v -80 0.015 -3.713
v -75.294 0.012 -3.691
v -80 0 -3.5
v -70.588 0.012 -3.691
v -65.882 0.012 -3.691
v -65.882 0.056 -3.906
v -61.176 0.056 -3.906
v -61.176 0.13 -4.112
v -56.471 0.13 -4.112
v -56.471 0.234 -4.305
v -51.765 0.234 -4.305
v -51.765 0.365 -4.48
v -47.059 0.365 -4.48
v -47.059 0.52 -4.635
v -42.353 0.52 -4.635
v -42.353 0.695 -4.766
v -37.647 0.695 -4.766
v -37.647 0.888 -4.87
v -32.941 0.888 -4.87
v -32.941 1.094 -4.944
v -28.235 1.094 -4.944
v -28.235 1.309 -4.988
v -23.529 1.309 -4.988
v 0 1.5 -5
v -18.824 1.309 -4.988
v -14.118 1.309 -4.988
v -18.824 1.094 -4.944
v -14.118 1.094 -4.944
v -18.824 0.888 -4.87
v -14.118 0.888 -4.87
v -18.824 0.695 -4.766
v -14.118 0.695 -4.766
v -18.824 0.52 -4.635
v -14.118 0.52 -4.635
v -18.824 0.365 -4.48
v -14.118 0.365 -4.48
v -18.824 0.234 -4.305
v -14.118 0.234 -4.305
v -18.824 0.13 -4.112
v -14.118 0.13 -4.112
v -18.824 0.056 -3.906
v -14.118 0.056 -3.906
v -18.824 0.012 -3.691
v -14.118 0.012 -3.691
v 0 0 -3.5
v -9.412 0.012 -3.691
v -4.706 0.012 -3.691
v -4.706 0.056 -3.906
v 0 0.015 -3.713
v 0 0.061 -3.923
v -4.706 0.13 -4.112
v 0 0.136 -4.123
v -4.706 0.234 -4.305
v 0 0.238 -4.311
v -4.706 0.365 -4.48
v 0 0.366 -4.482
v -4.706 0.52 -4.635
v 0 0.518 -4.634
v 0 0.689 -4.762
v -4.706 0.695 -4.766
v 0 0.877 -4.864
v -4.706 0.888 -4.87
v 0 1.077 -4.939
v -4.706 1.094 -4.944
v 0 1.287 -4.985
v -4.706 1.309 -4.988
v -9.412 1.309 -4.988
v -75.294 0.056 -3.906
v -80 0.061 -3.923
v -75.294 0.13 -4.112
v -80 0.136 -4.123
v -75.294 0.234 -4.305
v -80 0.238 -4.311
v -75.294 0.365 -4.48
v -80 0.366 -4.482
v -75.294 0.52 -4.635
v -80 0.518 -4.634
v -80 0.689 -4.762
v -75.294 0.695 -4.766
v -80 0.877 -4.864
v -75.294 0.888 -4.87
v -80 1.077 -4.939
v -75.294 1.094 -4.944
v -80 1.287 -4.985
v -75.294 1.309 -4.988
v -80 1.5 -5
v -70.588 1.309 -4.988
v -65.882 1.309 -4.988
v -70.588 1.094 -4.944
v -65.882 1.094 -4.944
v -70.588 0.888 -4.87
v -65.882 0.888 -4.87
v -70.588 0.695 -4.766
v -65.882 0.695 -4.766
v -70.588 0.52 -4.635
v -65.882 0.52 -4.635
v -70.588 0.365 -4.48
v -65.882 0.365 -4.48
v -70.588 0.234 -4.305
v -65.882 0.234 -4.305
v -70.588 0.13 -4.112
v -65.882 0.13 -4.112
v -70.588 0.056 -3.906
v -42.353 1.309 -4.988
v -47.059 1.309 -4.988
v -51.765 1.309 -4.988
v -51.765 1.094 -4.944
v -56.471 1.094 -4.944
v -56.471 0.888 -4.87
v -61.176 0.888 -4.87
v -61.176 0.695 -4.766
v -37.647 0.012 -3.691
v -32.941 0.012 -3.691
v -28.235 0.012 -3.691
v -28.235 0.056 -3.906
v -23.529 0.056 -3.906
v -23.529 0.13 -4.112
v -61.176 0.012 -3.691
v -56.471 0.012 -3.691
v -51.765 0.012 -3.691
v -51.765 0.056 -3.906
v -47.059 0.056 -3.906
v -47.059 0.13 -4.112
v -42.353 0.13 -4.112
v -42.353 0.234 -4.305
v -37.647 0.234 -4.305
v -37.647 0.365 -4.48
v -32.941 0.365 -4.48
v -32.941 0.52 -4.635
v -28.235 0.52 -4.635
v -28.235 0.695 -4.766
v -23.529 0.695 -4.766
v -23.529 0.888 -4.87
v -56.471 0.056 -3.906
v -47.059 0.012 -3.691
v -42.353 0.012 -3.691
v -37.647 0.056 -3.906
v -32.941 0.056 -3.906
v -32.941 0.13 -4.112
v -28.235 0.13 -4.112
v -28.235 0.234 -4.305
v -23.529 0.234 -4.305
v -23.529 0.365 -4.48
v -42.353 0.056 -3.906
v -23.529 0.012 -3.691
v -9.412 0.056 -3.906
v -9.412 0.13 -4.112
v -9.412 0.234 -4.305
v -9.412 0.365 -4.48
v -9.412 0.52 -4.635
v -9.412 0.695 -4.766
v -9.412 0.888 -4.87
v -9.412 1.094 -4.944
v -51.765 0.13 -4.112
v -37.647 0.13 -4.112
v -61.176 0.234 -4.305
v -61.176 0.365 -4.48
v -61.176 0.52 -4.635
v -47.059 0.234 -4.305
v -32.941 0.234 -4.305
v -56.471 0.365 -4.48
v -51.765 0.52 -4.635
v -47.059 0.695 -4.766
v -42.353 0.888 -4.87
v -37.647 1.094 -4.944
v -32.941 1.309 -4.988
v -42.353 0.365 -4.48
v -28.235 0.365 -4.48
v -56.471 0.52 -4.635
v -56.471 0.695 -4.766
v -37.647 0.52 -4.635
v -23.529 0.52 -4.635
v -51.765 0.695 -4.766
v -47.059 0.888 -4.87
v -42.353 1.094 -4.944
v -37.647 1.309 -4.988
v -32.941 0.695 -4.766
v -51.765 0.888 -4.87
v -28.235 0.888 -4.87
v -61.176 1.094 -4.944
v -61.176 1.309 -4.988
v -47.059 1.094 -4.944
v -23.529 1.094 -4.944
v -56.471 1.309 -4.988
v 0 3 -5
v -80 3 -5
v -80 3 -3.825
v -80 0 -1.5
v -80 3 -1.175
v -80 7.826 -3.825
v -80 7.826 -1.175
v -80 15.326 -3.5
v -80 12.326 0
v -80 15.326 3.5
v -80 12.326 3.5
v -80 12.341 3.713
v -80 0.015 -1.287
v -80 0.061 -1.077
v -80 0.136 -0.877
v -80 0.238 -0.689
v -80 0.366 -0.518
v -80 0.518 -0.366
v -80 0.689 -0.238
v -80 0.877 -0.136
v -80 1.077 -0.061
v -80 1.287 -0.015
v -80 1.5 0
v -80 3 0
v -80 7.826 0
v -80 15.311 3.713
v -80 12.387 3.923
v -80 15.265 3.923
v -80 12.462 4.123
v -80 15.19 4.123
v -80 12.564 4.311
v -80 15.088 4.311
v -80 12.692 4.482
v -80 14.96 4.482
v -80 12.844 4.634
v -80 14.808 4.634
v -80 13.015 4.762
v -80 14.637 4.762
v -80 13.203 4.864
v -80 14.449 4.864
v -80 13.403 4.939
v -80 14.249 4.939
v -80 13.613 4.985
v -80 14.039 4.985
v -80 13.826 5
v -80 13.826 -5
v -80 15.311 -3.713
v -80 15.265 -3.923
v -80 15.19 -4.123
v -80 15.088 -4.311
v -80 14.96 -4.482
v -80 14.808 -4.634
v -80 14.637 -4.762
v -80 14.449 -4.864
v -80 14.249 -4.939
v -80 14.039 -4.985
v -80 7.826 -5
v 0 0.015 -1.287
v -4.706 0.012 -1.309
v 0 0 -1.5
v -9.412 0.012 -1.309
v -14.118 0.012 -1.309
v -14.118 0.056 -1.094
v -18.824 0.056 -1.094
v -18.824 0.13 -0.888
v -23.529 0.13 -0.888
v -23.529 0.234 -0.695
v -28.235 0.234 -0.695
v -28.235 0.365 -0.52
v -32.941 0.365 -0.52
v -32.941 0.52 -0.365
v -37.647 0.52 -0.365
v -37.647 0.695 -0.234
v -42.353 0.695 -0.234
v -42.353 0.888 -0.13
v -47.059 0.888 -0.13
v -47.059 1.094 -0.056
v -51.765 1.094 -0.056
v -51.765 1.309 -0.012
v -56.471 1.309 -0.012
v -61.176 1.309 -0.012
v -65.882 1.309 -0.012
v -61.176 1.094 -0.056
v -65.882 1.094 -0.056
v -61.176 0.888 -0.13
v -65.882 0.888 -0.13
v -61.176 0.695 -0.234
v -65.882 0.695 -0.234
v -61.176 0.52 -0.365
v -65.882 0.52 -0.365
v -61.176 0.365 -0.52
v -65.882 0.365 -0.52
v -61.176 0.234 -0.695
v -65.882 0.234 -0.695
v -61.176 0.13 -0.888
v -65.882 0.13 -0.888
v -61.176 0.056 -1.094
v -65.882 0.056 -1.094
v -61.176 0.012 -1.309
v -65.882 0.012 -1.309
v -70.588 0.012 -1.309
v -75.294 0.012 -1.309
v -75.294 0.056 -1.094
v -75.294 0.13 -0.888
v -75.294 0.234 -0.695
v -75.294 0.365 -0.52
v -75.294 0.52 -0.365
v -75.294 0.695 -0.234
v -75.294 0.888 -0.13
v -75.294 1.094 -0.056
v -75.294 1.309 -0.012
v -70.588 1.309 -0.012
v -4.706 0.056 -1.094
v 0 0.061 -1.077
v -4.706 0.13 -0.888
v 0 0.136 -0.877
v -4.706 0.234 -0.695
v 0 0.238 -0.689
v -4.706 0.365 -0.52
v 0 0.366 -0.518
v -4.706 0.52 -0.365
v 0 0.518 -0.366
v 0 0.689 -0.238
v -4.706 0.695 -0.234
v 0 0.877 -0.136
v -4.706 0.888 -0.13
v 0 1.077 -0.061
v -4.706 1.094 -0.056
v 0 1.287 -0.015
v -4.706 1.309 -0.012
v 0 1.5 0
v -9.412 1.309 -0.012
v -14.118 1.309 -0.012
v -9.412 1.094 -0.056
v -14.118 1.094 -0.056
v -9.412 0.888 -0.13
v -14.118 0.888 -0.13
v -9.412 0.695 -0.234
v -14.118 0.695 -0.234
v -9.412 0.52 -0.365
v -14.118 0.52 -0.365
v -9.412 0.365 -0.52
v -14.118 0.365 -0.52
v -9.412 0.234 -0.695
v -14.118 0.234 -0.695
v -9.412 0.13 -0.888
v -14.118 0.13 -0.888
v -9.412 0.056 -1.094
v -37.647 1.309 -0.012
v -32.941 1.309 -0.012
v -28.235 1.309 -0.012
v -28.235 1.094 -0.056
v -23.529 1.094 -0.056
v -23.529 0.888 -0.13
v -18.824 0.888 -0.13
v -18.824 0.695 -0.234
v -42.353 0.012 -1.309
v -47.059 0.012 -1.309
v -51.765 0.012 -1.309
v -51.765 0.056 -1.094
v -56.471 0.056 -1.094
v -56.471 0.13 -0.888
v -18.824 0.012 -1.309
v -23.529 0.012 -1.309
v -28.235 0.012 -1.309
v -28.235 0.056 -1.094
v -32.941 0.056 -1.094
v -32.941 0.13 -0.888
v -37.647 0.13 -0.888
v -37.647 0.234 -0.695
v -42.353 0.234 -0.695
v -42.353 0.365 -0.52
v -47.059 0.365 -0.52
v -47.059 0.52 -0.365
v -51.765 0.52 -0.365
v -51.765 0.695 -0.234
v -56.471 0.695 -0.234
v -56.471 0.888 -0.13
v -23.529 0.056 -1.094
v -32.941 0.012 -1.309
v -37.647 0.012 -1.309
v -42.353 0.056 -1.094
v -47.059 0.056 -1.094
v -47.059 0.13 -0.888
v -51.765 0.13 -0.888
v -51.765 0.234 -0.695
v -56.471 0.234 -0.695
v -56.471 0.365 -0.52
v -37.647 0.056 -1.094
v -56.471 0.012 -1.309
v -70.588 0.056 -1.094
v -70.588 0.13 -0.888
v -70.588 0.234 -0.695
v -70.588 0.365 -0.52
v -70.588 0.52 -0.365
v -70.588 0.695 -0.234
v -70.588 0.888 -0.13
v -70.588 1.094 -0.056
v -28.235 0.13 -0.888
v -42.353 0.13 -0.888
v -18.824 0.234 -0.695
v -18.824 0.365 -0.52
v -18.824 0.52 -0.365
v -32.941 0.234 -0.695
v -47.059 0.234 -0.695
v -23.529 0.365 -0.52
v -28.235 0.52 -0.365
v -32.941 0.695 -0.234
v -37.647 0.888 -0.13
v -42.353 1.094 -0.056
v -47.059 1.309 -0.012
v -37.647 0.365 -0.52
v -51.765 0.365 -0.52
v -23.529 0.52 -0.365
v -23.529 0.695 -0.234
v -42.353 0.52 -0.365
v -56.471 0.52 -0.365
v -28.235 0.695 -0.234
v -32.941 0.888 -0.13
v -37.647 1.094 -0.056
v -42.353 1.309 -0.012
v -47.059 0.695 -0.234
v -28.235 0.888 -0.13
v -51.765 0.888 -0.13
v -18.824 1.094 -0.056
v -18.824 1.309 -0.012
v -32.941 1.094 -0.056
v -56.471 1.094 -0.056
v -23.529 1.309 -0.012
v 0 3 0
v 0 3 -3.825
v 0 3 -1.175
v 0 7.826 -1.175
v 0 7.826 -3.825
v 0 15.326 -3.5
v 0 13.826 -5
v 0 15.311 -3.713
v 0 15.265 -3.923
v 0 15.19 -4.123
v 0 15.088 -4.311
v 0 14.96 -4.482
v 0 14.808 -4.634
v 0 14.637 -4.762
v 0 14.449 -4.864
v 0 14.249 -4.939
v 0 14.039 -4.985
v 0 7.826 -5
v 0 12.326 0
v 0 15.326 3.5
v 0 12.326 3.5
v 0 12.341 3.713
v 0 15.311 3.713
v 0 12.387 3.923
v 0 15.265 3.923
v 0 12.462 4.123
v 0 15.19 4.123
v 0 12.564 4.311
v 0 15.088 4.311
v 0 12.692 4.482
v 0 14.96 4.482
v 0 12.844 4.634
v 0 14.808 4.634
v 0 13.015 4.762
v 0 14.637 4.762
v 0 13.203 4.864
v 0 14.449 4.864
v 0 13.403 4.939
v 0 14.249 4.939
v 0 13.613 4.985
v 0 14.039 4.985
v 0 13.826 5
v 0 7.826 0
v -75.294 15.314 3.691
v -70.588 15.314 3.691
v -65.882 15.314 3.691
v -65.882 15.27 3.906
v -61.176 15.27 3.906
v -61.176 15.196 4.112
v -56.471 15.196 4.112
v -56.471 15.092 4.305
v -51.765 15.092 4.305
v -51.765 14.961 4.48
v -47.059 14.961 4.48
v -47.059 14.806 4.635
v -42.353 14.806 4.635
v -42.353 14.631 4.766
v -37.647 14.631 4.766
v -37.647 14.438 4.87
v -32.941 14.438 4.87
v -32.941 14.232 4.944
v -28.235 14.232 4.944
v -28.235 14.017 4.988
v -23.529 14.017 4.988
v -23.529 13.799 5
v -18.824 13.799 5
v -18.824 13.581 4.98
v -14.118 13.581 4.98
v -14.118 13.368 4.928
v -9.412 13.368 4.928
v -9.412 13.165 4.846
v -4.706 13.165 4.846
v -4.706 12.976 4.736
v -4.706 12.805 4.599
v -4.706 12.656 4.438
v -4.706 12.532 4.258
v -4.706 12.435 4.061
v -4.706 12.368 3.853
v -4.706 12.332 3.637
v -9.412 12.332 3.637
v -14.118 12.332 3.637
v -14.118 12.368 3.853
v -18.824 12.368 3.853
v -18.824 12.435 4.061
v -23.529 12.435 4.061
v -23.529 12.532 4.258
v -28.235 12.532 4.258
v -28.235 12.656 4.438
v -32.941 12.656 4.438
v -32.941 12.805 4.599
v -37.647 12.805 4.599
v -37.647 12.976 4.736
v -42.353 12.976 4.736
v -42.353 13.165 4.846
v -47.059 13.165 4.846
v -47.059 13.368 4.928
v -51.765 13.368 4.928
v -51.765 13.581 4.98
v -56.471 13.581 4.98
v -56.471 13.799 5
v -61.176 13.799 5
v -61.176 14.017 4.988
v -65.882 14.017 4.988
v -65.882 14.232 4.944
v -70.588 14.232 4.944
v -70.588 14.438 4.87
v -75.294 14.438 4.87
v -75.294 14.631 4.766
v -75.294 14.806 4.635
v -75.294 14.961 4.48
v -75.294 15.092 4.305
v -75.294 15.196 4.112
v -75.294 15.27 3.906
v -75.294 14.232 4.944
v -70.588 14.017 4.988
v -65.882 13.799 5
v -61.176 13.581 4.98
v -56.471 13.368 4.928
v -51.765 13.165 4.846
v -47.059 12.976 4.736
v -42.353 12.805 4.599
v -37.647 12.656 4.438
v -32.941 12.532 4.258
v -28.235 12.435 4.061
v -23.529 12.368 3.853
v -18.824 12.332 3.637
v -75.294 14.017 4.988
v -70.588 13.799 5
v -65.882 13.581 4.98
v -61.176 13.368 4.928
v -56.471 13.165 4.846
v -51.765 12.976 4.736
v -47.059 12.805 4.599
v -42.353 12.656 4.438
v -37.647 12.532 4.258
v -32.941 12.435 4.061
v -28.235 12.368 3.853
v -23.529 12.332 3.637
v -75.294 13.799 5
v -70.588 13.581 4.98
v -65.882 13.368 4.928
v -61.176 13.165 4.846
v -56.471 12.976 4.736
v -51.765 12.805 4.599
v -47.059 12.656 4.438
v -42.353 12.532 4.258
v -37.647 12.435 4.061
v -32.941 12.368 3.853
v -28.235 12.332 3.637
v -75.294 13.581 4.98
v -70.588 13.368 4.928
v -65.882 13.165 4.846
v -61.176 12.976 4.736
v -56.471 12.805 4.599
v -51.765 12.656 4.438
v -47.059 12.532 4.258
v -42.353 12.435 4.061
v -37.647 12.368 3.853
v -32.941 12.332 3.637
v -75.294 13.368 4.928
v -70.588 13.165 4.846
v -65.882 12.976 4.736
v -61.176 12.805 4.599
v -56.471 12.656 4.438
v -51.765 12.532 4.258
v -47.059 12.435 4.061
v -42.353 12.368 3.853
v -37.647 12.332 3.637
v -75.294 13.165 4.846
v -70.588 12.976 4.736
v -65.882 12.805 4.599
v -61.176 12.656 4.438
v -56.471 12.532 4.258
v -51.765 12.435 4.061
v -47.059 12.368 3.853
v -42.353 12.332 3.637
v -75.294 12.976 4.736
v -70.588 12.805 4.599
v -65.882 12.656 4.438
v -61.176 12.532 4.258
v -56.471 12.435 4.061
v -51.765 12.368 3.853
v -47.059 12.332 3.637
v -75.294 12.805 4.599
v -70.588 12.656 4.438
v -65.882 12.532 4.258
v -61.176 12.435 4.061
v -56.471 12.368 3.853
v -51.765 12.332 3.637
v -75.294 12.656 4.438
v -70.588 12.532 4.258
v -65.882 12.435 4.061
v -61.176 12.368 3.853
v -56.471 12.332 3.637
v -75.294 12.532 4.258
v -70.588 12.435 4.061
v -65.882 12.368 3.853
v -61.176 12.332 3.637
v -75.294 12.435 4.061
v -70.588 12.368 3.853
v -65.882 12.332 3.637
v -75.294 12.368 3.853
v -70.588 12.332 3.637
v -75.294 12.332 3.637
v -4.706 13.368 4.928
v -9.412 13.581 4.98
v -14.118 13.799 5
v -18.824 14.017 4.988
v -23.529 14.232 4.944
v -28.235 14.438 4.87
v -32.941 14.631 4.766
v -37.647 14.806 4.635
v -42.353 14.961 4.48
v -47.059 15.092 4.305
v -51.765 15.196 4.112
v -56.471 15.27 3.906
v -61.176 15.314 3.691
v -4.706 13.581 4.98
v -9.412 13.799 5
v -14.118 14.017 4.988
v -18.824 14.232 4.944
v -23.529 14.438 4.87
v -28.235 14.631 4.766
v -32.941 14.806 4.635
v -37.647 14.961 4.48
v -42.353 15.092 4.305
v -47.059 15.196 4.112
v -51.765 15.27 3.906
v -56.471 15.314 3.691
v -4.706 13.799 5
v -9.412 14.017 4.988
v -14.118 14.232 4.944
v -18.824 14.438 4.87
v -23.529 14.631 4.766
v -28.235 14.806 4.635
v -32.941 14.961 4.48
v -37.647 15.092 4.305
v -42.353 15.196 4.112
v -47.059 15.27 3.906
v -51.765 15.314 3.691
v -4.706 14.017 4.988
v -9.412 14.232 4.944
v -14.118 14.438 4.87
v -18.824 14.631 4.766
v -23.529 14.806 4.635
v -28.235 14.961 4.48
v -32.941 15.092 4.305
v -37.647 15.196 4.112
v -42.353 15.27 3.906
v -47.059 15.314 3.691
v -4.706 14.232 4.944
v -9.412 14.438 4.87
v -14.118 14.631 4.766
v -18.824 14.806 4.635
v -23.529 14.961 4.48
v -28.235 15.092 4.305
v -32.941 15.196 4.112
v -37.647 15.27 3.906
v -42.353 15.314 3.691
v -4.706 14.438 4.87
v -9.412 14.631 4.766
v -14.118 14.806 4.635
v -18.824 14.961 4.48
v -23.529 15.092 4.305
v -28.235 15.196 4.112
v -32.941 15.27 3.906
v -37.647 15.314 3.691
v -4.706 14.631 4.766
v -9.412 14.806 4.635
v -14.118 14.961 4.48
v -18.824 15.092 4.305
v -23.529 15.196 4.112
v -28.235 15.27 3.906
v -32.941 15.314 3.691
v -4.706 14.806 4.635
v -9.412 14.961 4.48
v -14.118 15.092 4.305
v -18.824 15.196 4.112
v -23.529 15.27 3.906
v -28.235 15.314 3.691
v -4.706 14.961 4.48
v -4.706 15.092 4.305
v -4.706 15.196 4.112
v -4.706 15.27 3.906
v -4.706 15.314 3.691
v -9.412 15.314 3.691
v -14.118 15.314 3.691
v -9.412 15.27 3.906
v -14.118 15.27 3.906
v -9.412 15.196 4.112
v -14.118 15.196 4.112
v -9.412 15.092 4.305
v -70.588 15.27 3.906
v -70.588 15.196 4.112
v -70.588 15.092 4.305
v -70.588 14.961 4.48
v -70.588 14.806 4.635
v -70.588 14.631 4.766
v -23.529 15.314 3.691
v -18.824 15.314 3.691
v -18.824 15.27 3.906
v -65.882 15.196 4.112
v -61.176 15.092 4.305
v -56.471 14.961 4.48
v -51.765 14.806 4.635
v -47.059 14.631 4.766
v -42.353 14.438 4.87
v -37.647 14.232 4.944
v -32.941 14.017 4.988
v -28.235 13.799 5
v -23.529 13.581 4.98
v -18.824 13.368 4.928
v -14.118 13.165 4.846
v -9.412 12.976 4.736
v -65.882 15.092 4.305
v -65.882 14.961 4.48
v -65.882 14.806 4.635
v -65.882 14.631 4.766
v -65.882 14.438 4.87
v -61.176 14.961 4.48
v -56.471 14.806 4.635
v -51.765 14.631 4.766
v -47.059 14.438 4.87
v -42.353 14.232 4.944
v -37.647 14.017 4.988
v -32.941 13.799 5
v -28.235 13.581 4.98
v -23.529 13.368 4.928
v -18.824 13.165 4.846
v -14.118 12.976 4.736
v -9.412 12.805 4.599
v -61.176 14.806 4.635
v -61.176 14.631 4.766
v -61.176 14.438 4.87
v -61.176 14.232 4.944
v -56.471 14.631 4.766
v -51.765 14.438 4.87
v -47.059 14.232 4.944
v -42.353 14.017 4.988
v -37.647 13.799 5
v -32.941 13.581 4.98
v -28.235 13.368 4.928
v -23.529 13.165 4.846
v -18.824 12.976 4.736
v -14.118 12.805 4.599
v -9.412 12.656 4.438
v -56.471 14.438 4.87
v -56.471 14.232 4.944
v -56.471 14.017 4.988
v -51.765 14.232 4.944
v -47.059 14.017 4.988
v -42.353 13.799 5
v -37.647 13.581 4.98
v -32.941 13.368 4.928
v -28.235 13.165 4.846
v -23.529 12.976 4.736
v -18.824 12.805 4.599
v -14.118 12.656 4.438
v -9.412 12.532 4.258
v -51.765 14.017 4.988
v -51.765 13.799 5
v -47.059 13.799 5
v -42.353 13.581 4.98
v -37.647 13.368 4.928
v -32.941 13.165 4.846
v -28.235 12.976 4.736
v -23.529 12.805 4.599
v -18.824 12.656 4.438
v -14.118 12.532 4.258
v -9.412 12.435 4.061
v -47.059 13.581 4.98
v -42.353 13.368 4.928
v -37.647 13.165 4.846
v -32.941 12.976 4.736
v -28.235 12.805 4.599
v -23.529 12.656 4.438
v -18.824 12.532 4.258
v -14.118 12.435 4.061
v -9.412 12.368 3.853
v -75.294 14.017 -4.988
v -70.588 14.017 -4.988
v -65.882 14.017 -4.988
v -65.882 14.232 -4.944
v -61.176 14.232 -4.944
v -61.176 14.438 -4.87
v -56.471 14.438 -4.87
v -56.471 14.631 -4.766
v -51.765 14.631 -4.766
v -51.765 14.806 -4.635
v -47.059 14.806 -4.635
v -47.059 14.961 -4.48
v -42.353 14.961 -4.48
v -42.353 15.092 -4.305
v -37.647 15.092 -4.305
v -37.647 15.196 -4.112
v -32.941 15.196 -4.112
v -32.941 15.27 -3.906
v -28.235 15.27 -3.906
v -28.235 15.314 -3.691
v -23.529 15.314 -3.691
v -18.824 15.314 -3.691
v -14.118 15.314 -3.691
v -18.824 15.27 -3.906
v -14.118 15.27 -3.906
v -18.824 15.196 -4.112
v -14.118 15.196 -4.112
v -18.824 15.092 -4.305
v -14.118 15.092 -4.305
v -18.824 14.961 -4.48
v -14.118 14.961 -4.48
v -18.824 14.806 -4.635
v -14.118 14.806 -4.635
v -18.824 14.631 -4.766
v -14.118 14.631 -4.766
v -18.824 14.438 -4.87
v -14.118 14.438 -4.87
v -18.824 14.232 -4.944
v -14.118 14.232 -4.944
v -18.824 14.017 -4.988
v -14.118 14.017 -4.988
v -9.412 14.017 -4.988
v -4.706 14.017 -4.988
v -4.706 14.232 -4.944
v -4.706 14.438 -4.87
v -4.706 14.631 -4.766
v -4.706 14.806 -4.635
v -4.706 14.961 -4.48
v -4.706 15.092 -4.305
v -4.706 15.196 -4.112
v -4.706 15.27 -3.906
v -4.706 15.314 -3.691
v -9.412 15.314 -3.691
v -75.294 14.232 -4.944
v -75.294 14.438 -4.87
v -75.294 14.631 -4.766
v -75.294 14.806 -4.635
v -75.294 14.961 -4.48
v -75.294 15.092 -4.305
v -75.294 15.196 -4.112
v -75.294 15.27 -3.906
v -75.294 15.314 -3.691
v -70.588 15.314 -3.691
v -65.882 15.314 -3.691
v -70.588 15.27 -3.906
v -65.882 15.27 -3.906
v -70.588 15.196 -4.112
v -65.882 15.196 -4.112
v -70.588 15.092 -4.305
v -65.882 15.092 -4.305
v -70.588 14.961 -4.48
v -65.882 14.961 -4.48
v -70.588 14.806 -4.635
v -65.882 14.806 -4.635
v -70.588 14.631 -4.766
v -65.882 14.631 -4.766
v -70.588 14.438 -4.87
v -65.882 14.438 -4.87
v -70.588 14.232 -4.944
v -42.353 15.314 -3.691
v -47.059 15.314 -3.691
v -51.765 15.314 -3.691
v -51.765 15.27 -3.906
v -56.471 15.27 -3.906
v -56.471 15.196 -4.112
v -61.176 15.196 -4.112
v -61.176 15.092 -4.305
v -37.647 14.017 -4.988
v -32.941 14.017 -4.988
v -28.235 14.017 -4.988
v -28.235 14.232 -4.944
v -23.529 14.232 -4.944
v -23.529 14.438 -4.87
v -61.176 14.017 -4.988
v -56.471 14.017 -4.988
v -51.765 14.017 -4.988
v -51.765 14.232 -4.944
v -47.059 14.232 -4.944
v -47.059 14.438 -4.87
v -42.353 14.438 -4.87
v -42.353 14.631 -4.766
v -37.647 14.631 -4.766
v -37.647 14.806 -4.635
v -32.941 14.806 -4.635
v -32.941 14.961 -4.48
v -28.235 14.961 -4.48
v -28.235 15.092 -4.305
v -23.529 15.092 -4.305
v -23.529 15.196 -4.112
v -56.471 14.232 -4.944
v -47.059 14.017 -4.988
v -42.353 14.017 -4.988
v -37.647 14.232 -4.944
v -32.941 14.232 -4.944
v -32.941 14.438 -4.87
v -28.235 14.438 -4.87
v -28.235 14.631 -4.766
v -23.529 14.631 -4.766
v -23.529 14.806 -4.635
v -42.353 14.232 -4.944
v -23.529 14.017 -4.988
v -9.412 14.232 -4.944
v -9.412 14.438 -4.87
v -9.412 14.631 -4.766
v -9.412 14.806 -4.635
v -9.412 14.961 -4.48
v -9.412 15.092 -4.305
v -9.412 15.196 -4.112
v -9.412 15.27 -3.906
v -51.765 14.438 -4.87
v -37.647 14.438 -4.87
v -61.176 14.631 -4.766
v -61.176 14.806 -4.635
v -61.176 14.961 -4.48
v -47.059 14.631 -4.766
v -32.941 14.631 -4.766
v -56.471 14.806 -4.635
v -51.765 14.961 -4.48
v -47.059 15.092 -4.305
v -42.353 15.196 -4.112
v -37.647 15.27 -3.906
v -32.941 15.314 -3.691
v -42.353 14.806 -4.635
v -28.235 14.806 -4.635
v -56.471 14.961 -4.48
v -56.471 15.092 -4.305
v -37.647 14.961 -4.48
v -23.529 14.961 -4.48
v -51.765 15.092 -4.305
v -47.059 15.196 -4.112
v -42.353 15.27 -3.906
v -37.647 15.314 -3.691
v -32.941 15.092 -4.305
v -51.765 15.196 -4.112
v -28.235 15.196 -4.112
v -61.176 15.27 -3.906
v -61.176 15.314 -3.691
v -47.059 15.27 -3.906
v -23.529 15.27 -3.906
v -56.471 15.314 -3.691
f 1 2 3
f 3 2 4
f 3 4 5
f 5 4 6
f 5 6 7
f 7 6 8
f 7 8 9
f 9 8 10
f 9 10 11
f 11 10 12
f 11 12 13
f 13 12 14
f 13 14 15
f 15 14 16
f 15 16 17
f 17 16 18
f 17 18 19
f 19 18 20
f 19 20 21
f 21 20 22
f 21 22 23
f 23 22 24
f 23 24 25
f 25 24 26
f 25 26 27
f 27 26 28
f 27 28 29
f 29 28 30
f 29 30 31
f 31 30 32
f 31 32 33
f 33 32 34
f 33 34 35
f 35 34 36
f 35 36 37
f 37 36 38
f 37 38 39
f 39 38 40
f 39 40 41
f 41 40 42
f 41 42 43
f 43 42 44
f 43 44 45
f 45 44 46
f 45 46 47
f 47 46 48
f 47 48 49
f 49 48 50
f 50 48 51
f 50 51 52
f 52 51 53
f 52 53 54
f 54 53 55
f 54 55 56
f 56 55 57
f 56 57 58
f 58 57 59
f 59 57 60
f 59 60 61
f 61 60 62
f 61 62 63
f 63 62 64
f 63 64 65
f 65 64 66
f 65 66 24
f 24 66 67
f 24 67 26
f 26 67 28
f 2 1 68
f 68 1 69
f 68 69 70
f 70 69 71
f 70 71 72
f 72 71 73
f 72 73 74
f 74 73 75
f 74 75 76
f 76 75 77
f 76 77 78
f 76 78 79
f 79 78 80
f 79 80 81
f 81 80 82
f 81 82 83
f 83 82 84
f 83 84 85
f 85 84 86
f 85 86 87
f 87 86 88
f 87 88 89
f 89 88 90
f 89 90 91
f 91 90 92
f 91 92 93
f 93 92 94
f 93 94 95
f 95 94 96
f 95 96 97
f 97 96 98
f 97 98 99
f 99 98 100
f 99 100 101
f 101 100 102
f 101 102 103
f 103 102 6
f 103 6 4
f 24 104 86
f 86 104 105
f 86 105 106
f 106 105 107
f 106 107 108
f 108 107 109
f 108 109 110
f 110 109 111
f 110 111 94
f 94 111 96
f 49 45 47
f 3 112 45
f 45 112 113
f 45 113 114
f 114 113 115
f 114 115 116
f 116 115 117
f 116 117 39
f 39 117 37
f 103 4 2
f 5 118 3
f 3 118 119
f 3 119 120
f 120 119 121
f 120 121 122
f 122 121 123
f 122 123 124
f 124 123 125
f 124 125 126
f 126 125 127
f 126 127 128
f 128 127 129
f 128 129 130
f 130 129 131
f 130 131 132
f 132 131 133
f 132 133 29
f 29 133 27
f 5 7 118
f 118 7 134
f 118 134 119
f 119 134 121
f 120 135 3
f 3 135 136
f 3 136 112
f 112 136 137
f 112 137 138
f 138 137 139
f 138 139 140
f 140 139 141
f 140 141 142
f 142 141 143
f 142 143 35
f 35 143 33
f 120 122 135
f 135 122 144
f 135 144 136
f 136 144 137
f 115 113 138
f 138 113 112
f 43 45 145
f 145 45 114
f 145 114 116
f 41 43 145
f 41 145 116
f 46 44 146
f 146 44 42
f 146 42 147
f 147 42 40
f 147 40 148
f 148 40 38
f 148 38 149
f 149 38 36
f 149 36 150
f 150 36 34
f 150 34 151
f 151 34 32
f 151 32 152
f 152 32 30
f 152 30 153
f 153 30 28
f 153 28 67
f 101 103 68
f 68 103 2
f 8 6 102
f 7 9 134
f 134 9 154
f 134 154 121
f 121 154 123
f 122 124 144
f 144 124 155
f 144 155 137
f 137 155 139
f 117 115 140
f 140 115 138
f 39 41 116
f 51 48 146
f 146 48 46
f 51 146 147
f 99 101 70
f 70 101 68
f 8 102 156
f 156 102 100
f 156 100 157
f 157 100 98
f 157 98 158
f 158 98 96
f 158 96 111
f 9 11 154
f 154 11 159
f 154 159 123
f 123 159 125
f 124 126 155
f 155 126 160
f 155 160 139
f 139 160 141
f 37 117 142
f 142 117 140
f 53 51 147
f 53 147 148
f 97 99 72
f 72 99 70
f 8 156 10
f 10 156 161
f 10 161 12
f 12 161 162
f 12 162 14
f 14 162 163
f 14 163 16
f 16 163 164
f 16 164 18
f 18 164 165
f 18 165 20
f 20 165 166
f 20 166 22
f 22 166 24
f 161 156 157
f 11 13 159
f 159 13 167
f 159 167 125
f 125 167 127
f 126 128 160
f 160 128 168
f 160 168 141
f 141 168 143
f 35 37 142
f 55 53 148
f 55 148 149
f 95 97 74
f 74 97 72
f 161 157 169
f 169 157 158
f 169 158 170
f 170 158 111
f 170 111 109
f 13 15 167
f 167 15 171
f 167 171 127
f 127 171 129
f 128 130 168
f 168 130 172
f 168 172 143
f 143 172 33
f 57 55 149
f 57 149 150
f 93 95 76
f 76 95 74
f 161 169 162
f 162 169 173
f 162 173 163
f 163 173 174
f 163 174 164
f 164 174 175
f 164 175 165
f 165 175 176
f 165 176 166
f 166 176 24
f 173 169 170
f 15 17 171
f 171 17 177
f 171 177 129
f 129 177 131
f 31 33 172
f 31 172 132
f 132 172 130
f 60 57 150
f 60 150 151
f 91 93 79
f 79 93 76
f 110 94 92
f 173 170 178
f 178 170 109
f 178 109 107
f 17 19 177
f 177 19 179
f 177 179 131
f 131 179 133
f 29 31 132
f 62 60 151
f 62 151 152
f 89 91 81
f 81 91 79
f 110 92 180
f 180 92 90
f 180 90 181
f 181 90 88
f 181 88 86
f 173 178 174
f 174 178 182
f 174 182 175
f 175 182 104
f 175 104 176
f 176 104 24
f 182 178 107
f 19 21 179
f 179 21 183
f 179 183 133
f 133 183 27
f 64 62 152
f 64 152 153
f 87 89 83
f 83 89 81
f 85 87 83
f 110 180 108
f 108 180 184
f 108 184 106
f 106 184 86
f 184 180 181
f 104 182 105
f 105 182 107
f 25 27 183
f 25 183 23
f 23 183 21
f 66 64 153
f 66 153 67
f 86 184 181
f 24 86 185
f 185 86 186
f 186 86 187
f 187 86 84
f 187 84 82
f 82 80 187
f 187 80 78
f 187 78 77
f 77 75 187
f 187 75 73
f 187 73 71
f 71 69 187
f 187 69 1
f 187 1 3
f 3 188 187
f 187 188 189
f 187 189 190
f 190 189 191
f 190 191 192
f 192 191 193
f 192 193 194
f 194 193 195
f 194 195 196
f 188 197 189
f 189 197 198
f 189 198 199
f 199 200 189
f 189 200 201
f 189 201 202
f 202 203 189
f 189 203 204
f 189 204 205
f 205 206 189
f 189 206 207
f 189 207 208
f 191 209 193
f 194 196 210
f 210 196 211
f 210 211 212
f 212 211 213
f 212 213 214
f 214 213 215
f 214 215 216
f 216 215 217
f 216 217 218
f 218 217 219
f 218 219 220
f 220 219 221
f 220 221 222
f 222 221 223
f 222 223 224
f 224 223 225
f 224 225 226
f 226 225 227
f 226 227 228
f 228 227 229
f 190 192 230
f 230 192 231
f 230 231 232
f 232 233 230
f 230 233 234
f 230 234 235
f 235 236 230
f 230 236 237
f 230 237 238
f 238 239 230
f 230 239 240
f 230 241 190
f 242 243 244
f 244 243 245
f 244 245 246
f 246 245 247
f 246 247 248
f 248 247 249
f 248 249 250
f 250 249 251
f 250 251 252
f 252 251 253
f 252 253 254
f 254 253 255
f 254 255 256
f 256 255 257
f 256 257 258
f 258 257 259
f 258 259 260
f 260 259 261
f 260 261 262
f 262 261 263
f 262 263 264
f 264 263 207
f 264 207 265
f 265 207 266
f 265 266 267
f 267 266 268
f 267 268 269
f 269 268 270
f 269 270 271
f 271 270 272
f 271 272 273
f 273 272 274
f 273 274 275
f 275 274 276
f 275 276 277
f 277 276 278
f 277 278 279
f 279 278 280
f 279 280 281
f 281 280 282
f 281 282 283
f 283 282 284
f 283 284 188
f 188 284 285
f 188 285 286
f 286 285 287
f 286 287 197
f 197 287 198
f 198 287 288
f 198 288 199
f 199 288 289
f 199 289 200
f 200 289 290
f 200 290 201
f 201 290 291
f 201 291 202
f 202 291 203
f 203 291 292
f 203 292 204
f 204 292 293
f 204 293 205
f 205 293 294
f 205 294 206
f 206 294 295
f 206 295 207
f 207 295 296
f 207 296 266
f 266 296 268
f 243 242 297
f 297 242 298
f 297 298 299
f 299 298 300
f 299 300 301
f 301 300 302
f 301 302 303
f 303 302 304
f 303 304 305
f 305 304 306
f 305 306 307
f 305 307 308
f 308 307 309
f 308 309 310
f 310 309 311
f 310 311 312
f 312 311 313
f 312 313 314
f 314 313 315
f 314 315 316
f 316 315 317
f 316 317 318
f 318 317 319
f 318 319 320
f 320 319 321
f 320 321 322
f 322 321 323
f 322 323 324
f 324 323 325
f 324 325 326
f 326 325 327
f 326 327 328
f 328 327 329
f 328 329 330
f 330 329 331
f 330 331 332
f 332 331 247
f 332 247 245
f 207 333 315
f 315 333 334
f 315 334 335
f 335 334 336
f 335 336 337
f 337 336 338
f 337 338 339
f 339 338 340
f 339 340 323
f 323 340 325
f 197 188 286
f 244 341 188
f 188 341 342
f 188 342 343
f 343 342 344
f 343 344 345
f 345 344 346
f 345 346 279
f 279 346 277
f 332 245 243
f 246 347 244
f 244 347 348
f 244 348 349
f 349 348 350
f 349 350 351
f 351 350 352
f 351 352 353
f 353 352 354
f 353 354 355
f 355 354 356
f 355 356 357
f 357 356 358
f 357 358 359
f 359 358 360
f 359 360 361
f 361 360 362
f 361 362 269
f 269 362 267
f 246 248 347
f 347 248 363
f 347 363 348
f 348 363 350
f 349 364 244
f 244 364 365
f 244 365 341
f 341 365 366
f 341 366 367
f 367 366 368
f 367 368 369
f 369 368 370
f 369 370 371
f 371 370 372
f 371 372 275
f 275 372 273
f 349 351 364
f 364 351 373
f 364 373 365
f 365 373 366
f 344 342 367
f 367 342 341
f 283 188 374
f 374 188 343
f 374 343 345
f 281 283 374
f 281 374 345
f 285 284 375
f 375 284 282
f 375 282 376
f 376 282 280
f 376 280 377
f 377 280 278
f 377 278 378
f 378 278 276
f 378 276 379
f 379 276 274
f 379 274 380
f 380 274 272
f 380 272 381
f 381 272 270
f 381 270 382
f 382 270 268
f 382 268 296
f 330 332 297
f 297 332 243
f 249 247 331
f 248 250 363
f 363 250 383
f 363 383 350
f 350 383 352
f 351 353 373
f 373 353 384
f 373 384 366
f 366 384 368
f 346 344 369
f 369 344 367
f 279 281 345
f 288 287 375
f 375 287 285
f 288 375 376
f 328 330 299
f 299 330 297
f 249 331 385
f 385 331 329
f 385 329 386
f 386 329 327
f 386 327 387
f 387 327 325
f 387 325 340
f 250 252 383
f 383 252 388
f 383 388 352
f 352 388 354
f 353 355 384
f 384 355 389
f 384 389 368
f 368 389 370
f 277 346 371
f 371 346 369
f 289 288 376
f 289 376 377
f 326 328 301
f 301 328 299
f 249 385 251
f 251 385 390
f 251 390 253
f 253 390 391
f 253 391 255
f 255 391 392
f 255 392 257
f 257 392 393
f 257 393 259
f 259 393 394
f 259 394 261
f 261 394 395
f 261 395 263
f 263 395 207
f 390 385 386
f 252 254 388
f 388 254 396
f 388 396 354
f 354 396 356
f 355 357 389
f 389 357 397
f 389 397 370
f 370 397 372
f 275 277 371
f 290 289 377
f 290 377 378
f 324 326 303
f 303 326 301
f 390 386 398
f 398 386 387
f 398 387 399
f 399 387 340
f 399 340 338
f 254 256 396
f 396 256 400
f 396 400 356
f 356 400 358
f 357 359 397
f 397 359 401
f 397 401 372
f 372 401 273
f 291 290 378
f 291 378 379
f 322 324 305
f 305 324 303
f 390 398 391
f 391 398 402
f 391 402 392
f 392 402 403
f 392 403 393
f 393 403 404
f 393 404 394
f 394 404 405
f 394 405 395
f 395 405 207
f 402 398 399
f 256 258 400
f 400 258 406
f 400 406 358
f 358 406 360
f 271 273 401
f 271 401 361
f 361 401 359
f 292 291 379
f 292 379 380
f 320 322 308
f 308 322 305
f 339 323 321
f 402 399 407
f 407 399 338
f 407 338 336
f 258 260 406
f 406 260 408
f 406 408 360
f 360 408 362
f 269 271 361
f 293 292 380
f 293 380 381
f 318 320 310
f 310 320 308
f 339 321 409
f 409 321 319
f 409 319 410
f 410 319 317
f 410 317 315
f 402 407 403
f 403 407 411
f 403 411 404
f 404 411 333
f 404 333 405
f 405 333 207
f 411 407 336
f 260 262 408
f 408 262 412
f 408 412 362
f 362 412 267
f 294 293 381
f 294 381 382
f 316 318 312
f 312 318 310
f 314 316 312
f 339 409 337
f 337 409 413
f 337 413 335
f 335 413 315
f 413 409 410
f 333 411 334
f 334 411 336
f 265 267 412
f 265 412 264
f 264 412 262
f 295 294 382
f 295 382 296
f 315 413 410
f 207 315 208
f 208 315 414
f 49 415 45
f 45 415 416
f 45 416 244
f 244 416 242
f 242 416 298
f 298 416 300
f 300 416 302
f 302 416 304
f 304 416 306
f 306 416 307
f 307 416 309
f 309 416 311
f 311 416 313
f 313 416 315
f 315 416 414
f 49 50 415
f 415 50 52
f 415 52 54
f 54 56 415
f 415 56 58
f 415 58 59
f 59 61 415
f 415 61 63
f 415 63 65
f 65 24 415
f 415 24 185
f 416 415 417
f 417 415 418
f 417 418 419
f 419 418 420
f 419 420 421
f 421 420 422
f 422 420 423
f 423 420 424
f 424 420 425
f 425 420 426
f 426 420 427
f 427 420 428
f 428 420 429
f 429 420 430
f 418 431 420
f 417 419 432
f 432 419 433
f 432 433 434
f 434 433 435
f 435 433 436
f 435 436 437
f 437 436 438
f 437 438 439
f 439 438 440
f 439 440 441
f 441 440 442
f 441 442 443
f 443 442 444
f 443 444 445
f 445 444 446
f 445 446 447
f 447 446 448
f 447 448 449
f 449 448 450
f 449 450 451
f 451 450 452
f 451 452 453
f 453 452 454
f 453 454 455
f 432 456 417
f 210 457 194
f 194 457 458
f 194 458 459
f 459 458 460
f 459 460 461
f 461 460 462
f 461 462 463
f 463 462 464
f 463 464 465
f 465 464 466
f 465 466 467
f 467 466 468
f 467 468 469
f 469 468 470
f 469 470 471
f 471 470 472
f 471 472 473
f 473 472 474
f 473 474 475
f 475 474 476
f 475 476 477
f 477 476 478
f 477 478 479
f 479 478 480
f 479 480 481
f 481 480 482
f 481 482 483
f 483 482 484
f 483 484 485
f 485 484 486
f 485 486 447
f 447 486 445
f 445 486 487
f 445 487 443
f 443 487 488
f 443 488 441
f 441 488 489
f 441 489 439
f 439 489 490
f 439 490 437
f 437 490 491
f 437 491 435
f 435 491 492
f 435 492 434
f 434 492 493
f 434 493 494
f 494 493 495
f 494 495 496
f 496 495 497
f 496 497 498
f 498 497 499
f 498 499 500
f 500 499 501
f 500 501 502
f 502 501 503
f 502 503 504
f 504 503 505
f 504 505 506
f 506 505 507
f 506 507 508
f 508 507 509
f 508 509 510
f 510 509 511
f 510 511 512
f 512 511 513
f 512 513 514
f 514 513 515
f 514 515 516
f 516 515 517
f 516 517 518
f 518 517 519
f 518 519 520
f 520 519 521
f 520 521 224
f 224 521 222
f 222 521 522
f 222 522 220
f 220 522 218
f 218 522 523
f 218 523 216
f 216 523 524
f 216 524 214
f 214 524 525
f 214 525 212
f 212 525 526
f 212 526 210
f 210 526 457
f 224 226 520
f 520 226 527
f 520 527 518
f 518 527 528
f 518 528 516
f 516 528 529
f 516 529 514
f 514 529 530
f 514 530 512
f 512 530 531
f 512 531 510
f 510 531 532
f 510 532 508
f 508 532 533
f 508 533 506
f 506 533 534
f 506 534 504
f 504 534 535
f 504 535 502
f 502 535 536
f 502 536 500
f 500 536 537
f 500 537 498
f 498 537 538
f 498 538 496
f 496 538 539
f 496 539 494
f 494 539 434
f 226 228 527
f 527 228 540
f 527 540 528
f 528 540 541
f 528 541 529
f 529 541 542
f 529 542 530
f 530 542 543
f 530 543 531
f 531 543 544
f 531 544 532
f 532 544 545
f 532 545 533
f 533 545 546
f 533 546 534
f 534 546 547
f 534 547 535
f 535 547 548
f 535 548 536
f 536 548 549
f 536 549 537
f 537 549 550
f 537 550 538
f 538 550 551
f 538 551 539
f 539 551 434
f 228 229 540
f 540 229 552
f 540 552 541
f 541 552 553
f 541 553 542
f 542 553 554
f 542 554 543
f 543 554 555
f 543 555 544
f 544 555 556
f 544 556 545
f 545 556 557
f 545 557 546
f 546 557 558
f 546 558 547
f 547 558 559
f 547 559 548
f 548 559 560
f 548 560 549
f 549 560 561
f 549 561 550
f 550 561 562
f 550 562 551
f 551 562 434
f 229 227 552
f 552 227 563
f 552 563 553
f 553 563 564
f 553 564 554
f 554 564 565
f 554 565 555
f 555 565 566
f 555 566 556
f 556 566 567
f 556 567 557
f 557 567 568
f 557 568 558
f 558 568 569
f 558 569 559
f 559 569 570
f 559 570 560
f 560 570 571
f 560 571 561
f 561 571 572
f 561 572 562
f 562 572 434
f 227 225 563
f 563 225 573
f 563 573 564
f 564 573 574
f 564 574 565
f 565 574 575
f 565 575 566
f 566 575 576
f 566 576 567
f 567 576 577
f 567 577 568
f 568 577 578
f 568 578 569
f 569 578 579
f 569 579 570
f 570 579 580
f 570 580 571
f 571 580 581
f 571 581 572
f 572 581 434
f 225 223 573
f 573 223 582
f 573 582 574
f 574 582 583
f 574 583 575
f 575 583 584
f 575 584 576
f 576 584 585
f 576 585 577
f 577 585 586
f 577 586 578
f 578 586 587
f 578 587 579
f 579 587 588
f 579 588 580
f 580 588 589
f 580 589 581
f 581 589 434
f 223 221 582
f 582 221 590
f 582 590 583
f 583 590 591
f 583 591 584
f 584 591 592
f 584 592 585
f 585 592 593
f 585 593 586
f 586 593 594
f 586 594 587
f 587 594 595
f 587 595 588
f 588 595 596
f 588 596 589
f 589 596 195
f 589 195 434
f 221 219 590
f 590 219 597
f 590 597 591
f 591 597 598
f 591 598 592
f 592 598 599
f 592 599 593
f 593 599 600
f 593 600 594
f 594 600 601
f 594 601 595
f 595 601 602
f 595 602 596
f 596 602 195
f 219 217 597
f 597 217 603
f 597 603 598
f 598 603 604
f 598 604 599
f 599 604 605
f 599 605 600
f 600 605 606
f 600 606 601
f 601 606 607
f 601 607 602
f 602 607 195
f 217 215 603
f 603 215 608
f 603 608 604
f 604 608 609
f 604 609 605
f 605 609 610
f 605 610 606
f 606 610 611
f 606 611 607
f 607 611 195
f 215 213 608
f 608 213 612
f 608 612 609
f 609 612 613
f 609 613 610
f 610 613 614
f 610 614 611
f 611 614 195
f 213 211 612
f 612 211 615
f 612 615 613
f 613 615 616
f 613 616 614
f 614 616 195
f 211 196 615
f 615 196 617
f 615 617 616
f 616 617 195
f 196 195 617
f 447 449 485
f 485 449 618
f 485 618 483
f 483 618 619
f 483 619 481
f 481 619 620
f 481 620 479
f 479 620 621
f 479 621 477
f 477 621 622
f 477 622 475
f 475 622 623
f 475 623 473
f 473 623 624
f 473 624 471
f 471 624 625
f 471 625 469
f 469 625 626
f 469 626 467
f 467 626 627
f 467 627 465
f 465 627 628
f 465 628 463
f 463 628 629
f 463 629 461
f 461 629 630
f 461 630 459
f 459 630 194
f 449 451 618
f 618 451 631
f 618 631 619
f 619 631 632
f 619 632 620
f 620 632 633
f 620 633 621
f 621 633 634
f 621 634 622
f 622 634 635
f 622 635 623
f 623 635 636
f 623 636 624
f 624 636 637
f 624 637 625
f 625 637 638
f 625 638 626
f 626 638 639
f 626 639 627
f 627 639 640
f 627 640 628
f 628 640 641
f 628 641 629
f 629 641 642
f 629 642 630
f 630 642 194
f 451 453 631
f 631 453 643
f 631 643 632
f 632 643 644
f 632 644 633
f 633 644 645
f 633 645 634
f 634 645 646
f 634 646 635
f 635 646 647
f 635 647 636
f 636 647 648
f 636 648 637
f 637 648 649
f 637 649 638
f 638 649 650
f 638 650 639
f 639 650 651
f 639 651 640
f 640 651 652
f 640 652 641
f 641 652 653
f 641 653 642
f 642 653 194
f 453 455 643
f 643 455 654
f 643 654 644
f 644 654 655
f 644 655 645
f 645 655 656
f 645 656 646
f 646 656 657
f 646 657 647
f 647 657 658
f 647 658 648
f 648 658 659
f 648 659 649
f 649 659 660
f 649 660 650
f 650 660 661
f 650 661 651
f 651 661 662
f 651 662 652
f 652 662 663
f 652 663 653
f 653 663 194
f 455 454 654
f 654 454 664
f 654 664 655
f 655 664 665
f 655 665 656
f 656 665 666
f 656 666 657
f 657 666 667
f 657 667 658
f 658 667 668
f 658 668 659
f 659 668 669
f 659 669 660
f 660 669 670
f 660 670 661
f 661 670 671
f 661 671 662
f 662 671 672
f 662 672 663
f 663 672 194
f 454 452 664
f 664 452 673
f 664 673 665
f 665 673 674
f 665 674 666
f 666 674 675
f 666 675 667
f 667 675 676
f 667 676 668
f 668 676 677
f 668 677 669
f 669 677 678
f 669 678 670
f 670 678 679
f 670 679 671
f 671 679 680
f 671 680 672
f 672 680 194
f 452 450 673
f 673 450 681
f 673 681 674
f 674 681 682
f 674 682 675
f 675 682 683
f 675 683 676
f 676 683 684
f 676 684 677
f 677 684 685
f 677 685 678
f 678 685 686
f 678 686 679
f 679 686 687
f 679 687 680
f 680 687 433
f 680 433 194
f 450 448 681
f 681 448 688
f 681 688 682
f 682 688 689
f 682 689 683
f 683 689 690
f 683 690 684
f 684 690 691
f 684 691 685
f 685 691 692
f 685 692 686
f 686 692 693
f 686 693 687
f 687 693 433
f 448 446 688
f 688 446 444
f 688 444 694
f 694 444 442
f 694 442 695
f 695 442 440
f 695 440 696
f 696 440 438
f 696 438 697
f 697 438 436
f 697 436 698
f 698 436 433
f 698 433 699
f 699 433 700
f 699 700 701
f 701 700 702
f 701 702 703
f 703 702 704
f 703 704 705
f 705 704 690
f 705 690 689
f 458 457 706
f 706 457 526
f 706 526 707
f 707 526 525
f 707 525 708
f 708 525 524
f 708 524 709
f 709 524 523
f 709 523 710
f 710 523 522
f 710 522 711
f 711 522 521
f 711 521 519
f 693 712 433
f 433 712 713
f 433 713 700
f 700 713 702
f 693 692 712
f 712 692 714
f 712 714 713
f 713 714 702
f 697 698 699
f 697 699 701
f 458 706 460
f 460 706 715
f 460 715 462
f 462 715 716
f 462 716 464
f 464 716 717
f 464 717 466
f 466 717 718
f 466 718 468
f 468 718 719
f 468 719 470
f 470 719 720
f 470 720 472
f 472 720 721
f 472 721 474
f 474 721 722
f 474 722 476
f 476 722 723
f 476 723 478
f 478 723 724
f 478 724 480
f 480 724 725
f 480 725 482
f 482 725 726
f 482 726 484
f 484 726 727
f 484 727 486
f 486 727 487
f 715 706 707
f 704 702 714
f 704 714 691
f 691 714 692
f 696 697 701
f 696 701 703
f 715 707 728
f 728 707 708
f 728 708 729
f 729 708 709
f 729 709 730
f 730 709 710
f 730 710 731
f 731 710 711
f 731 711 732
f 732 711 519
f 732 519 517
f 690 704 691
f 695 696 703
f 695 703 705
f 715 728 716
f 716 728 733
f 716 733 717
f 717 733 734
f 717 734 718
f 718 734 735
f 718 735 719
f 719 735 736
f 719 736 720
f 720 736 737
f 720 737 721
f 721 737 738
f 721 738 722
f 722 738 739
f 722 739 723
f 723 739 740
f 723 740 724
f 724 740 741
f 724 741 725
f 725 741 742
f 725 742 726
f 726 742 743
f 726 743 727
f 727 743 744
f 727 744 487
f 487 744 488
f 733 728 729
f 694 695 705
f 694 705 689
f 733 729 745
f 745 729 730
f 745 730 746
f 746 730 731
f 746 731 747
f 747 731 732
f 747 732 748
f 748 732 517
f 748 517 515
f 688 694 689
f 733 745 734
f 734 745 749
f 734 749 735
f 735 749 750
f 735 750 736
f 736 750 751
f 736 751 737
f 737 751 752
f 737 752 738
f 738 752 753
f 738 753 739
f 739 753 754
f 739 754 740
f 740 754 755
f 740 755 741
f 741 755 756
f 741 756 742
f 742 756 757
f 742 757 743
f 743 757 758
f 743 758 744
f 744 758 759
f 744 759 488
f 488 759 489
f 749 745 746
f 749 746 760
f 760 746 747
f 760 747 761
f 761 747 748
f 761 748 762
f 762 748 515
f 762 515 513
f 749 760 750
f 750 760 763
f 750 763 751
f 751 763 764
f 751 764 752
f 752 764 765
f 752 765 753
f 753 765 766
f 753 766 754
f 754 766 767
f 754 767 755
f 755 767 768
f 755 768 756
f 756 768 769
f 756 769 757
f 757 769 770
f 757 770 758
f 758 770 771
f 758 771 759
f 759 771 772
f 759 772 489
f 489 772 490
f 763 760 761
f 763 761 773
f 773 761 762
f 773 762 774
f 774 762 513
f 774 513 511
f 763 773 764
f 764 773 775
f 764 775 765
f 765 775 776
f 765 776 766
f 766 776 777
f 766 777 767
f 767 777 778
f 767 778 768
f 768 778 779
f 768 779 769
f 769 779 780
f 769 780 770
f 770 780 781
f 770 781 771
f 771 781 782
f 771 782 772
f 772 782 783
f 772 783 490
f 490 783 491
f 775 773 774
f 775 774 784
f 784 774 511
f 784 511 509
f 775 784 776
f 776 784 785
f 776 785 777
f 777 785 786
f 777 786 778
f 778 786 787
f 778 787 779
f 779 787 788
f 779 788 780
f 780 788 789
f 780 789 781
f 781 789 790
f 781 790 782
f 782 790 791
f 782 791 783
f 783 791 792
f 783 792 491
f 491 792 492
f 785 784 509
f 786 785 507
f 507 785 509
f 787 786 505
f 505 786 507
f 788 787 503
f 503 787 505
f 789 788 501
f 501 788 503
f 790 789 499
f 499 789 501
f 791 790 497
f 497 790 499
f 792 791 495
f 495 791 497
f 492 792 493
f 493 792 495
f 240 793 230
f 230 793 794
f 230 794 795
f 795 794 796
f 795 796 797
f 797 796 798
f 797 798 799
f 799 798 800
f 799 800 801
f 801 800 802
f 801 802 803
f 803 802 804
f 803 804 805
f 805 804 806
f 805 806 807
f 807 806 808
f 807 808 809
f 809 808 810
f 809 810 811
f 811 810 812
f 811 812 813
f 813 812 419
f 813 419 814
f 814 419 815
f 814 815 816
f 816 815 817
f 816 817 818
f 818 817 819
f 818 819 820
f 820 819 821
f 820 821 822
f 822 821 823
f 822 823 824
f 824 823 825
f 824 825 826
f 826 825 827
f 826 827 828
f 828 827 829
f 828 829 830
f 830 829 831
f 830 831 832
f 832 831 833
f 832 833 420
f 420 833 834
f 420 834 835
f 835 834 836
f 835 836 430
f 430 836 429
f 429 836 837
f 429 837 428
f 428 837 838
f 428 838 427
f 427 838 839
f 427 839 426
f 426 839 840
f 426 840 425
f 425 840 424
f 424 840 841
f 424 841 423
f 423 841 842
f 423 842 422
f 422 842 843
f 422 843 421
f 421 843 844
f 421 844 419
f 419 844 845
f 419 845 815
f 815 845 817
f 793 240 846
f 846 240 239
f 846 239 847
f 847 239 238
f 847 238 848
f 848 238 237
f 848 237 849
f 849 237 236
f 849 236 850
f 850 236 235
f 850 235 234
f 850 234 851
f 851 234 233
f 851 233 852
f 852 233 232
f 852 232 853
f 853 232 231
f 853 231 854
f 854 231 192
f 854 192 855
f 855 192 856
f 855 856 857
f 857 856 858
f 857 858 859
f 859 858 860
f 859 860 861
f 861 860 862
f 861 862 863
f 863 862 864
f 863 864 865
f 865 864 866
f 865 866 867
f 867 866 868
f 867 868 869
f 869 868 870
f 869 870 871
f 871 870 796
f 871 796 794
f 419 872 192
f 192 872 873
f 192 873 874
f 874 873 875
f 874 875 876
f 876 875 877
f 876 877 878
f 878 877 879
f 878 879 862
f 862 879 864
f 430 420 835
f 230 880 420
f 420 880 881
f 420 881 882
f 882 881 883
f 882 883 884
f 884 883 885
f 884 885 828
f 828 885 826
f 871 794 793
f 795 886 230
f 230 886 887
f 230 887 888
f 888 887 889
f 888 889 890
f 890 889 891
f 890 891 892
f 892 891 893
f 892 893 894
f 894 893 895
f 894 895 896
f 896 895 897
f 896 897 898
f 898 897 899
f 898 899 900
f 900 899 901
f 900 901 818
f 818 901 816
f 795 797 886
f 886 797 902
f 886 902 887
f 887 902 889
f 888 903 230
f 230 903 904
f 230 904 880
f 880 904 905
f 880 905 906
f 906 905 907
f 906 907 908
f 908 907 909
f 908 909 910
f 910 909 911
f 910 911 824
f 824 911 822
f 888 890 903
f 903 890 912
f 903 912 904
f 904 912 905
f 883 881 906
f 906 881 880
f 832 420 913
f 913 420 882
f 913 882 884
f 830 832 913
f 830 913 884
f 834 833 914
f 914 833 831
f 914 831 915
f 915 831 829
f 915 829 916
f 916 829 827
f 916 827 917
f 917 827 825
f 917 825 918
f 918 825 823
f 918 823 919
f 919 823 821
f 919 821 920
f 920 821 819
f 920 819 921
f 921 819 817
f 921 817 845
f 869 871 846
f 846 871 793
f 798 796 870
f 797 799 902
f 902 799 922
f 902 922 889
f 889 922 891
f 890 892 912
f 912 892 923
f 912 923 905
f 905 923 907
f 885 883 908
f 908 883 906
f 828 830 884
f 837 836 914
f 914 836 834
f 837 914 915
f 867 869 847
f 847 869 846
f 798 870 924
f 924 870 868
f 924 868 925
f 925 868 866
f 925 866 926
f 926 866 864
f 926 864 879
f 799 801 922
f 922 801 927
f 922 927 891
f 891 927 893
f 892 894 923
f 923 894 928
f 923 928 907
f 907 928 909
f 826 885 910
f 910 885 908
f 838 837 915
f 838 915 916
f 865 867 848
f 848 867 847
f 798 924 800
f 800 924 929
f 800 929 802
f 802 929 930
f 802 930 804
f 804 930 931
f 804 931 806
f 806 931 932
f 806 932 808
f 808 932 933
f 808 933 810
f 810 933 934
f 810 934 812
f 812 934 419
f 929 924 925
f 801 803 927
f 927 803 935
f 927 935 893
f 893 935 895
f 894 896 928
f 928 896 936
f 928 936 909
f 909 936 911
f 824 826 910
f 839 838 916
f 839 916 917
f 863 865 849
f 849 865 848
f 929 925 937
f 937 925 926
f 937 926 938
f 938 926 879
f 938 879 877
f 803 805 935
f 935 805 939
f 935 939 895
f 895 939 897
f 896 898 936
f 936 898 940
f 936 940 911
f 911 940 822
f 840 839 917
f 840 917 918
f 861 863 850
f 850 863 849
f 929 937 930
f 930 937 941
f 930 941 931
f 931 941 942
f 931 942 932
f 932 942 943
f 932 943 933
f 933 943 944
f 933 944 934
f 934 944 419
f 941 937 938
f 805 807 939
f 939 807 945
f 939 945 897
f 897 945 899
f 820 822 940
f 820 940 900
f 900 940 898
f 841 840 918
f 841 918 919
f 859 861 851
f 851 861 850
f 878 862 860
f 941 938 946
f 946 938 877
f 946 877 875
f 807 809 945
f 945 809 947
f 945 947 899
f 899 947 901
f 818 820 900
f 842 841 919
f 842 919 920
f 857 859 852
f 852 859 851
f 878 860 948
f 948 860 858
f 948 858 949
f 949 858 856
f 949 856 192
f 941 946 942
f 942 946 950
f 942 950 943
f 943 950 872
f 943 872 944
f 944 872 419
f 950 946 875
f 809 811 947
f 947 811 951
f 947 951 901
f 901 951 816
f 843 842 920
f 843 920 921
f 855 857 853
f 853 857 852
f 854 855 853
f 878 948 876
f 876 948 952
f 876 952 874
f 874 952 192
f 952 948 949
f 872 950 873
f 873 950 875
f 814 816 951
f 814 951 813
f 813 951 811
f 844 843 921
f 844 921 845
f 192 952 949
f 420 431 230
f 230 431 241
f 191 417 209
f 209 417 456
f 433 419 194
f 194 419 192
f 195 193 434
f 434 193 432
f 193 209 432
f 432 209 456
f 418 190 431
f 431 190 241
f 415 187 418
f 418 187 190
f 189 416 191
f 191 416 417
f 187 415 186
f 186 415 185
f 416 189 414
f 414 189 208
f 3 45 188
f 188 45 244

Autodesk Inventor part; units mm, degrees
ref_plane "YZ Plane" through (0, 0, 0) normal (1, 0, 0) x (0, 1, 0)
ref_plane "XZ Plane" through (0, 0, 0) normal (0, 1, 0) x (-1, 0, 0)
ref_plane "XY Plane" through (0, 0, 0) normal (0, 0, 1) x (1, 0, 0)
sketch "Sketch1" plane through (0, 0, 0) normal (0, 1, 0) x (-1, 0, 0)
  line L0 (0, 0) -> (80, 0)
  line L1 (80, 0) -> (80, -5)
  line L2 (80, -5) -> (0, -5)
  line L3 (0, -5) -> (0, 0)
  dimension "d0" = 5
  dimension "d1" = 80
extrude "Extrusion1" add sketch "Sketch1" along normal blind 3
sketch "Sketch2" plane through (0, 3, 0) normal (0, 1, 0) x (1, 0, 0)
  line L0 (0, 3.825) -> (-80, 3.825)
  line L1 (-80, 3.825) -> (-80, 1.175)
  line L2 (-80, 1.175) -> (0, 1.175)
  line L3 (0, 1.175) -> (0, 3.825)
  line L4 (0, 3.825) -> (-80, 1.175) construction
  line L5 (-80, 3.825) -> (0, 1.175) construction
  line L6 (0, 0) -> (0, 5) projected
  line L7 (-80, 5) -> (-80, 0) projected
  point P0 (-40, 2.5)
  point P1 (0, 2.5)
  point P2 (0, 2.5)
  dimension "d4" = 2.65
extrude "Extrusion2" add sketch "Sketch2" along normal blind 4.826
sketch "Sketch3" plane through (0, 0, 0) normal (1, 0, 0) x (0, 0, -1)
  line L0 (5, 7.826) -> (0, 7.826)
  line L1 (0, 7.826) -> (0, 15.326)
  line L2 (0, 15.326) -> (5, 15.326)
  line L3 (5, 15.326) -> (5, 7.826)
  line L4 (1.175, 7.826) -> (3.825, 7.826) projected
  line L5 (5, 0) -> (5, 3) projected
  line L6 (0, 0) -> (0, 3) projected
  line L7 (0, 15.326) -> (-5, 15.326)
  line L8 (-5, 15.326) -> (-5, 12.326)
  line L9 (-5, 12.326) -> (0, 12.326)
  line L10 (0, 12.326) -> (0, 15.326)
  dimension "d7" = 7.5
  dimension "d8" = 3
  dimension "d9" = 5
extrude "Extrusion3" add sketch "Sketch3" against normal up to surface (80 mm away)
fillet "Fillet1" radius 1.5 3 edges at (-40, 15.326, -5) (-40, 15.326, 5) (-40, 12.326, 5)
fillet "Fillet2" radius 1.5 2 edges at (-40, 0, 0) (-40, 0, -5)
properties part number "Rails"
